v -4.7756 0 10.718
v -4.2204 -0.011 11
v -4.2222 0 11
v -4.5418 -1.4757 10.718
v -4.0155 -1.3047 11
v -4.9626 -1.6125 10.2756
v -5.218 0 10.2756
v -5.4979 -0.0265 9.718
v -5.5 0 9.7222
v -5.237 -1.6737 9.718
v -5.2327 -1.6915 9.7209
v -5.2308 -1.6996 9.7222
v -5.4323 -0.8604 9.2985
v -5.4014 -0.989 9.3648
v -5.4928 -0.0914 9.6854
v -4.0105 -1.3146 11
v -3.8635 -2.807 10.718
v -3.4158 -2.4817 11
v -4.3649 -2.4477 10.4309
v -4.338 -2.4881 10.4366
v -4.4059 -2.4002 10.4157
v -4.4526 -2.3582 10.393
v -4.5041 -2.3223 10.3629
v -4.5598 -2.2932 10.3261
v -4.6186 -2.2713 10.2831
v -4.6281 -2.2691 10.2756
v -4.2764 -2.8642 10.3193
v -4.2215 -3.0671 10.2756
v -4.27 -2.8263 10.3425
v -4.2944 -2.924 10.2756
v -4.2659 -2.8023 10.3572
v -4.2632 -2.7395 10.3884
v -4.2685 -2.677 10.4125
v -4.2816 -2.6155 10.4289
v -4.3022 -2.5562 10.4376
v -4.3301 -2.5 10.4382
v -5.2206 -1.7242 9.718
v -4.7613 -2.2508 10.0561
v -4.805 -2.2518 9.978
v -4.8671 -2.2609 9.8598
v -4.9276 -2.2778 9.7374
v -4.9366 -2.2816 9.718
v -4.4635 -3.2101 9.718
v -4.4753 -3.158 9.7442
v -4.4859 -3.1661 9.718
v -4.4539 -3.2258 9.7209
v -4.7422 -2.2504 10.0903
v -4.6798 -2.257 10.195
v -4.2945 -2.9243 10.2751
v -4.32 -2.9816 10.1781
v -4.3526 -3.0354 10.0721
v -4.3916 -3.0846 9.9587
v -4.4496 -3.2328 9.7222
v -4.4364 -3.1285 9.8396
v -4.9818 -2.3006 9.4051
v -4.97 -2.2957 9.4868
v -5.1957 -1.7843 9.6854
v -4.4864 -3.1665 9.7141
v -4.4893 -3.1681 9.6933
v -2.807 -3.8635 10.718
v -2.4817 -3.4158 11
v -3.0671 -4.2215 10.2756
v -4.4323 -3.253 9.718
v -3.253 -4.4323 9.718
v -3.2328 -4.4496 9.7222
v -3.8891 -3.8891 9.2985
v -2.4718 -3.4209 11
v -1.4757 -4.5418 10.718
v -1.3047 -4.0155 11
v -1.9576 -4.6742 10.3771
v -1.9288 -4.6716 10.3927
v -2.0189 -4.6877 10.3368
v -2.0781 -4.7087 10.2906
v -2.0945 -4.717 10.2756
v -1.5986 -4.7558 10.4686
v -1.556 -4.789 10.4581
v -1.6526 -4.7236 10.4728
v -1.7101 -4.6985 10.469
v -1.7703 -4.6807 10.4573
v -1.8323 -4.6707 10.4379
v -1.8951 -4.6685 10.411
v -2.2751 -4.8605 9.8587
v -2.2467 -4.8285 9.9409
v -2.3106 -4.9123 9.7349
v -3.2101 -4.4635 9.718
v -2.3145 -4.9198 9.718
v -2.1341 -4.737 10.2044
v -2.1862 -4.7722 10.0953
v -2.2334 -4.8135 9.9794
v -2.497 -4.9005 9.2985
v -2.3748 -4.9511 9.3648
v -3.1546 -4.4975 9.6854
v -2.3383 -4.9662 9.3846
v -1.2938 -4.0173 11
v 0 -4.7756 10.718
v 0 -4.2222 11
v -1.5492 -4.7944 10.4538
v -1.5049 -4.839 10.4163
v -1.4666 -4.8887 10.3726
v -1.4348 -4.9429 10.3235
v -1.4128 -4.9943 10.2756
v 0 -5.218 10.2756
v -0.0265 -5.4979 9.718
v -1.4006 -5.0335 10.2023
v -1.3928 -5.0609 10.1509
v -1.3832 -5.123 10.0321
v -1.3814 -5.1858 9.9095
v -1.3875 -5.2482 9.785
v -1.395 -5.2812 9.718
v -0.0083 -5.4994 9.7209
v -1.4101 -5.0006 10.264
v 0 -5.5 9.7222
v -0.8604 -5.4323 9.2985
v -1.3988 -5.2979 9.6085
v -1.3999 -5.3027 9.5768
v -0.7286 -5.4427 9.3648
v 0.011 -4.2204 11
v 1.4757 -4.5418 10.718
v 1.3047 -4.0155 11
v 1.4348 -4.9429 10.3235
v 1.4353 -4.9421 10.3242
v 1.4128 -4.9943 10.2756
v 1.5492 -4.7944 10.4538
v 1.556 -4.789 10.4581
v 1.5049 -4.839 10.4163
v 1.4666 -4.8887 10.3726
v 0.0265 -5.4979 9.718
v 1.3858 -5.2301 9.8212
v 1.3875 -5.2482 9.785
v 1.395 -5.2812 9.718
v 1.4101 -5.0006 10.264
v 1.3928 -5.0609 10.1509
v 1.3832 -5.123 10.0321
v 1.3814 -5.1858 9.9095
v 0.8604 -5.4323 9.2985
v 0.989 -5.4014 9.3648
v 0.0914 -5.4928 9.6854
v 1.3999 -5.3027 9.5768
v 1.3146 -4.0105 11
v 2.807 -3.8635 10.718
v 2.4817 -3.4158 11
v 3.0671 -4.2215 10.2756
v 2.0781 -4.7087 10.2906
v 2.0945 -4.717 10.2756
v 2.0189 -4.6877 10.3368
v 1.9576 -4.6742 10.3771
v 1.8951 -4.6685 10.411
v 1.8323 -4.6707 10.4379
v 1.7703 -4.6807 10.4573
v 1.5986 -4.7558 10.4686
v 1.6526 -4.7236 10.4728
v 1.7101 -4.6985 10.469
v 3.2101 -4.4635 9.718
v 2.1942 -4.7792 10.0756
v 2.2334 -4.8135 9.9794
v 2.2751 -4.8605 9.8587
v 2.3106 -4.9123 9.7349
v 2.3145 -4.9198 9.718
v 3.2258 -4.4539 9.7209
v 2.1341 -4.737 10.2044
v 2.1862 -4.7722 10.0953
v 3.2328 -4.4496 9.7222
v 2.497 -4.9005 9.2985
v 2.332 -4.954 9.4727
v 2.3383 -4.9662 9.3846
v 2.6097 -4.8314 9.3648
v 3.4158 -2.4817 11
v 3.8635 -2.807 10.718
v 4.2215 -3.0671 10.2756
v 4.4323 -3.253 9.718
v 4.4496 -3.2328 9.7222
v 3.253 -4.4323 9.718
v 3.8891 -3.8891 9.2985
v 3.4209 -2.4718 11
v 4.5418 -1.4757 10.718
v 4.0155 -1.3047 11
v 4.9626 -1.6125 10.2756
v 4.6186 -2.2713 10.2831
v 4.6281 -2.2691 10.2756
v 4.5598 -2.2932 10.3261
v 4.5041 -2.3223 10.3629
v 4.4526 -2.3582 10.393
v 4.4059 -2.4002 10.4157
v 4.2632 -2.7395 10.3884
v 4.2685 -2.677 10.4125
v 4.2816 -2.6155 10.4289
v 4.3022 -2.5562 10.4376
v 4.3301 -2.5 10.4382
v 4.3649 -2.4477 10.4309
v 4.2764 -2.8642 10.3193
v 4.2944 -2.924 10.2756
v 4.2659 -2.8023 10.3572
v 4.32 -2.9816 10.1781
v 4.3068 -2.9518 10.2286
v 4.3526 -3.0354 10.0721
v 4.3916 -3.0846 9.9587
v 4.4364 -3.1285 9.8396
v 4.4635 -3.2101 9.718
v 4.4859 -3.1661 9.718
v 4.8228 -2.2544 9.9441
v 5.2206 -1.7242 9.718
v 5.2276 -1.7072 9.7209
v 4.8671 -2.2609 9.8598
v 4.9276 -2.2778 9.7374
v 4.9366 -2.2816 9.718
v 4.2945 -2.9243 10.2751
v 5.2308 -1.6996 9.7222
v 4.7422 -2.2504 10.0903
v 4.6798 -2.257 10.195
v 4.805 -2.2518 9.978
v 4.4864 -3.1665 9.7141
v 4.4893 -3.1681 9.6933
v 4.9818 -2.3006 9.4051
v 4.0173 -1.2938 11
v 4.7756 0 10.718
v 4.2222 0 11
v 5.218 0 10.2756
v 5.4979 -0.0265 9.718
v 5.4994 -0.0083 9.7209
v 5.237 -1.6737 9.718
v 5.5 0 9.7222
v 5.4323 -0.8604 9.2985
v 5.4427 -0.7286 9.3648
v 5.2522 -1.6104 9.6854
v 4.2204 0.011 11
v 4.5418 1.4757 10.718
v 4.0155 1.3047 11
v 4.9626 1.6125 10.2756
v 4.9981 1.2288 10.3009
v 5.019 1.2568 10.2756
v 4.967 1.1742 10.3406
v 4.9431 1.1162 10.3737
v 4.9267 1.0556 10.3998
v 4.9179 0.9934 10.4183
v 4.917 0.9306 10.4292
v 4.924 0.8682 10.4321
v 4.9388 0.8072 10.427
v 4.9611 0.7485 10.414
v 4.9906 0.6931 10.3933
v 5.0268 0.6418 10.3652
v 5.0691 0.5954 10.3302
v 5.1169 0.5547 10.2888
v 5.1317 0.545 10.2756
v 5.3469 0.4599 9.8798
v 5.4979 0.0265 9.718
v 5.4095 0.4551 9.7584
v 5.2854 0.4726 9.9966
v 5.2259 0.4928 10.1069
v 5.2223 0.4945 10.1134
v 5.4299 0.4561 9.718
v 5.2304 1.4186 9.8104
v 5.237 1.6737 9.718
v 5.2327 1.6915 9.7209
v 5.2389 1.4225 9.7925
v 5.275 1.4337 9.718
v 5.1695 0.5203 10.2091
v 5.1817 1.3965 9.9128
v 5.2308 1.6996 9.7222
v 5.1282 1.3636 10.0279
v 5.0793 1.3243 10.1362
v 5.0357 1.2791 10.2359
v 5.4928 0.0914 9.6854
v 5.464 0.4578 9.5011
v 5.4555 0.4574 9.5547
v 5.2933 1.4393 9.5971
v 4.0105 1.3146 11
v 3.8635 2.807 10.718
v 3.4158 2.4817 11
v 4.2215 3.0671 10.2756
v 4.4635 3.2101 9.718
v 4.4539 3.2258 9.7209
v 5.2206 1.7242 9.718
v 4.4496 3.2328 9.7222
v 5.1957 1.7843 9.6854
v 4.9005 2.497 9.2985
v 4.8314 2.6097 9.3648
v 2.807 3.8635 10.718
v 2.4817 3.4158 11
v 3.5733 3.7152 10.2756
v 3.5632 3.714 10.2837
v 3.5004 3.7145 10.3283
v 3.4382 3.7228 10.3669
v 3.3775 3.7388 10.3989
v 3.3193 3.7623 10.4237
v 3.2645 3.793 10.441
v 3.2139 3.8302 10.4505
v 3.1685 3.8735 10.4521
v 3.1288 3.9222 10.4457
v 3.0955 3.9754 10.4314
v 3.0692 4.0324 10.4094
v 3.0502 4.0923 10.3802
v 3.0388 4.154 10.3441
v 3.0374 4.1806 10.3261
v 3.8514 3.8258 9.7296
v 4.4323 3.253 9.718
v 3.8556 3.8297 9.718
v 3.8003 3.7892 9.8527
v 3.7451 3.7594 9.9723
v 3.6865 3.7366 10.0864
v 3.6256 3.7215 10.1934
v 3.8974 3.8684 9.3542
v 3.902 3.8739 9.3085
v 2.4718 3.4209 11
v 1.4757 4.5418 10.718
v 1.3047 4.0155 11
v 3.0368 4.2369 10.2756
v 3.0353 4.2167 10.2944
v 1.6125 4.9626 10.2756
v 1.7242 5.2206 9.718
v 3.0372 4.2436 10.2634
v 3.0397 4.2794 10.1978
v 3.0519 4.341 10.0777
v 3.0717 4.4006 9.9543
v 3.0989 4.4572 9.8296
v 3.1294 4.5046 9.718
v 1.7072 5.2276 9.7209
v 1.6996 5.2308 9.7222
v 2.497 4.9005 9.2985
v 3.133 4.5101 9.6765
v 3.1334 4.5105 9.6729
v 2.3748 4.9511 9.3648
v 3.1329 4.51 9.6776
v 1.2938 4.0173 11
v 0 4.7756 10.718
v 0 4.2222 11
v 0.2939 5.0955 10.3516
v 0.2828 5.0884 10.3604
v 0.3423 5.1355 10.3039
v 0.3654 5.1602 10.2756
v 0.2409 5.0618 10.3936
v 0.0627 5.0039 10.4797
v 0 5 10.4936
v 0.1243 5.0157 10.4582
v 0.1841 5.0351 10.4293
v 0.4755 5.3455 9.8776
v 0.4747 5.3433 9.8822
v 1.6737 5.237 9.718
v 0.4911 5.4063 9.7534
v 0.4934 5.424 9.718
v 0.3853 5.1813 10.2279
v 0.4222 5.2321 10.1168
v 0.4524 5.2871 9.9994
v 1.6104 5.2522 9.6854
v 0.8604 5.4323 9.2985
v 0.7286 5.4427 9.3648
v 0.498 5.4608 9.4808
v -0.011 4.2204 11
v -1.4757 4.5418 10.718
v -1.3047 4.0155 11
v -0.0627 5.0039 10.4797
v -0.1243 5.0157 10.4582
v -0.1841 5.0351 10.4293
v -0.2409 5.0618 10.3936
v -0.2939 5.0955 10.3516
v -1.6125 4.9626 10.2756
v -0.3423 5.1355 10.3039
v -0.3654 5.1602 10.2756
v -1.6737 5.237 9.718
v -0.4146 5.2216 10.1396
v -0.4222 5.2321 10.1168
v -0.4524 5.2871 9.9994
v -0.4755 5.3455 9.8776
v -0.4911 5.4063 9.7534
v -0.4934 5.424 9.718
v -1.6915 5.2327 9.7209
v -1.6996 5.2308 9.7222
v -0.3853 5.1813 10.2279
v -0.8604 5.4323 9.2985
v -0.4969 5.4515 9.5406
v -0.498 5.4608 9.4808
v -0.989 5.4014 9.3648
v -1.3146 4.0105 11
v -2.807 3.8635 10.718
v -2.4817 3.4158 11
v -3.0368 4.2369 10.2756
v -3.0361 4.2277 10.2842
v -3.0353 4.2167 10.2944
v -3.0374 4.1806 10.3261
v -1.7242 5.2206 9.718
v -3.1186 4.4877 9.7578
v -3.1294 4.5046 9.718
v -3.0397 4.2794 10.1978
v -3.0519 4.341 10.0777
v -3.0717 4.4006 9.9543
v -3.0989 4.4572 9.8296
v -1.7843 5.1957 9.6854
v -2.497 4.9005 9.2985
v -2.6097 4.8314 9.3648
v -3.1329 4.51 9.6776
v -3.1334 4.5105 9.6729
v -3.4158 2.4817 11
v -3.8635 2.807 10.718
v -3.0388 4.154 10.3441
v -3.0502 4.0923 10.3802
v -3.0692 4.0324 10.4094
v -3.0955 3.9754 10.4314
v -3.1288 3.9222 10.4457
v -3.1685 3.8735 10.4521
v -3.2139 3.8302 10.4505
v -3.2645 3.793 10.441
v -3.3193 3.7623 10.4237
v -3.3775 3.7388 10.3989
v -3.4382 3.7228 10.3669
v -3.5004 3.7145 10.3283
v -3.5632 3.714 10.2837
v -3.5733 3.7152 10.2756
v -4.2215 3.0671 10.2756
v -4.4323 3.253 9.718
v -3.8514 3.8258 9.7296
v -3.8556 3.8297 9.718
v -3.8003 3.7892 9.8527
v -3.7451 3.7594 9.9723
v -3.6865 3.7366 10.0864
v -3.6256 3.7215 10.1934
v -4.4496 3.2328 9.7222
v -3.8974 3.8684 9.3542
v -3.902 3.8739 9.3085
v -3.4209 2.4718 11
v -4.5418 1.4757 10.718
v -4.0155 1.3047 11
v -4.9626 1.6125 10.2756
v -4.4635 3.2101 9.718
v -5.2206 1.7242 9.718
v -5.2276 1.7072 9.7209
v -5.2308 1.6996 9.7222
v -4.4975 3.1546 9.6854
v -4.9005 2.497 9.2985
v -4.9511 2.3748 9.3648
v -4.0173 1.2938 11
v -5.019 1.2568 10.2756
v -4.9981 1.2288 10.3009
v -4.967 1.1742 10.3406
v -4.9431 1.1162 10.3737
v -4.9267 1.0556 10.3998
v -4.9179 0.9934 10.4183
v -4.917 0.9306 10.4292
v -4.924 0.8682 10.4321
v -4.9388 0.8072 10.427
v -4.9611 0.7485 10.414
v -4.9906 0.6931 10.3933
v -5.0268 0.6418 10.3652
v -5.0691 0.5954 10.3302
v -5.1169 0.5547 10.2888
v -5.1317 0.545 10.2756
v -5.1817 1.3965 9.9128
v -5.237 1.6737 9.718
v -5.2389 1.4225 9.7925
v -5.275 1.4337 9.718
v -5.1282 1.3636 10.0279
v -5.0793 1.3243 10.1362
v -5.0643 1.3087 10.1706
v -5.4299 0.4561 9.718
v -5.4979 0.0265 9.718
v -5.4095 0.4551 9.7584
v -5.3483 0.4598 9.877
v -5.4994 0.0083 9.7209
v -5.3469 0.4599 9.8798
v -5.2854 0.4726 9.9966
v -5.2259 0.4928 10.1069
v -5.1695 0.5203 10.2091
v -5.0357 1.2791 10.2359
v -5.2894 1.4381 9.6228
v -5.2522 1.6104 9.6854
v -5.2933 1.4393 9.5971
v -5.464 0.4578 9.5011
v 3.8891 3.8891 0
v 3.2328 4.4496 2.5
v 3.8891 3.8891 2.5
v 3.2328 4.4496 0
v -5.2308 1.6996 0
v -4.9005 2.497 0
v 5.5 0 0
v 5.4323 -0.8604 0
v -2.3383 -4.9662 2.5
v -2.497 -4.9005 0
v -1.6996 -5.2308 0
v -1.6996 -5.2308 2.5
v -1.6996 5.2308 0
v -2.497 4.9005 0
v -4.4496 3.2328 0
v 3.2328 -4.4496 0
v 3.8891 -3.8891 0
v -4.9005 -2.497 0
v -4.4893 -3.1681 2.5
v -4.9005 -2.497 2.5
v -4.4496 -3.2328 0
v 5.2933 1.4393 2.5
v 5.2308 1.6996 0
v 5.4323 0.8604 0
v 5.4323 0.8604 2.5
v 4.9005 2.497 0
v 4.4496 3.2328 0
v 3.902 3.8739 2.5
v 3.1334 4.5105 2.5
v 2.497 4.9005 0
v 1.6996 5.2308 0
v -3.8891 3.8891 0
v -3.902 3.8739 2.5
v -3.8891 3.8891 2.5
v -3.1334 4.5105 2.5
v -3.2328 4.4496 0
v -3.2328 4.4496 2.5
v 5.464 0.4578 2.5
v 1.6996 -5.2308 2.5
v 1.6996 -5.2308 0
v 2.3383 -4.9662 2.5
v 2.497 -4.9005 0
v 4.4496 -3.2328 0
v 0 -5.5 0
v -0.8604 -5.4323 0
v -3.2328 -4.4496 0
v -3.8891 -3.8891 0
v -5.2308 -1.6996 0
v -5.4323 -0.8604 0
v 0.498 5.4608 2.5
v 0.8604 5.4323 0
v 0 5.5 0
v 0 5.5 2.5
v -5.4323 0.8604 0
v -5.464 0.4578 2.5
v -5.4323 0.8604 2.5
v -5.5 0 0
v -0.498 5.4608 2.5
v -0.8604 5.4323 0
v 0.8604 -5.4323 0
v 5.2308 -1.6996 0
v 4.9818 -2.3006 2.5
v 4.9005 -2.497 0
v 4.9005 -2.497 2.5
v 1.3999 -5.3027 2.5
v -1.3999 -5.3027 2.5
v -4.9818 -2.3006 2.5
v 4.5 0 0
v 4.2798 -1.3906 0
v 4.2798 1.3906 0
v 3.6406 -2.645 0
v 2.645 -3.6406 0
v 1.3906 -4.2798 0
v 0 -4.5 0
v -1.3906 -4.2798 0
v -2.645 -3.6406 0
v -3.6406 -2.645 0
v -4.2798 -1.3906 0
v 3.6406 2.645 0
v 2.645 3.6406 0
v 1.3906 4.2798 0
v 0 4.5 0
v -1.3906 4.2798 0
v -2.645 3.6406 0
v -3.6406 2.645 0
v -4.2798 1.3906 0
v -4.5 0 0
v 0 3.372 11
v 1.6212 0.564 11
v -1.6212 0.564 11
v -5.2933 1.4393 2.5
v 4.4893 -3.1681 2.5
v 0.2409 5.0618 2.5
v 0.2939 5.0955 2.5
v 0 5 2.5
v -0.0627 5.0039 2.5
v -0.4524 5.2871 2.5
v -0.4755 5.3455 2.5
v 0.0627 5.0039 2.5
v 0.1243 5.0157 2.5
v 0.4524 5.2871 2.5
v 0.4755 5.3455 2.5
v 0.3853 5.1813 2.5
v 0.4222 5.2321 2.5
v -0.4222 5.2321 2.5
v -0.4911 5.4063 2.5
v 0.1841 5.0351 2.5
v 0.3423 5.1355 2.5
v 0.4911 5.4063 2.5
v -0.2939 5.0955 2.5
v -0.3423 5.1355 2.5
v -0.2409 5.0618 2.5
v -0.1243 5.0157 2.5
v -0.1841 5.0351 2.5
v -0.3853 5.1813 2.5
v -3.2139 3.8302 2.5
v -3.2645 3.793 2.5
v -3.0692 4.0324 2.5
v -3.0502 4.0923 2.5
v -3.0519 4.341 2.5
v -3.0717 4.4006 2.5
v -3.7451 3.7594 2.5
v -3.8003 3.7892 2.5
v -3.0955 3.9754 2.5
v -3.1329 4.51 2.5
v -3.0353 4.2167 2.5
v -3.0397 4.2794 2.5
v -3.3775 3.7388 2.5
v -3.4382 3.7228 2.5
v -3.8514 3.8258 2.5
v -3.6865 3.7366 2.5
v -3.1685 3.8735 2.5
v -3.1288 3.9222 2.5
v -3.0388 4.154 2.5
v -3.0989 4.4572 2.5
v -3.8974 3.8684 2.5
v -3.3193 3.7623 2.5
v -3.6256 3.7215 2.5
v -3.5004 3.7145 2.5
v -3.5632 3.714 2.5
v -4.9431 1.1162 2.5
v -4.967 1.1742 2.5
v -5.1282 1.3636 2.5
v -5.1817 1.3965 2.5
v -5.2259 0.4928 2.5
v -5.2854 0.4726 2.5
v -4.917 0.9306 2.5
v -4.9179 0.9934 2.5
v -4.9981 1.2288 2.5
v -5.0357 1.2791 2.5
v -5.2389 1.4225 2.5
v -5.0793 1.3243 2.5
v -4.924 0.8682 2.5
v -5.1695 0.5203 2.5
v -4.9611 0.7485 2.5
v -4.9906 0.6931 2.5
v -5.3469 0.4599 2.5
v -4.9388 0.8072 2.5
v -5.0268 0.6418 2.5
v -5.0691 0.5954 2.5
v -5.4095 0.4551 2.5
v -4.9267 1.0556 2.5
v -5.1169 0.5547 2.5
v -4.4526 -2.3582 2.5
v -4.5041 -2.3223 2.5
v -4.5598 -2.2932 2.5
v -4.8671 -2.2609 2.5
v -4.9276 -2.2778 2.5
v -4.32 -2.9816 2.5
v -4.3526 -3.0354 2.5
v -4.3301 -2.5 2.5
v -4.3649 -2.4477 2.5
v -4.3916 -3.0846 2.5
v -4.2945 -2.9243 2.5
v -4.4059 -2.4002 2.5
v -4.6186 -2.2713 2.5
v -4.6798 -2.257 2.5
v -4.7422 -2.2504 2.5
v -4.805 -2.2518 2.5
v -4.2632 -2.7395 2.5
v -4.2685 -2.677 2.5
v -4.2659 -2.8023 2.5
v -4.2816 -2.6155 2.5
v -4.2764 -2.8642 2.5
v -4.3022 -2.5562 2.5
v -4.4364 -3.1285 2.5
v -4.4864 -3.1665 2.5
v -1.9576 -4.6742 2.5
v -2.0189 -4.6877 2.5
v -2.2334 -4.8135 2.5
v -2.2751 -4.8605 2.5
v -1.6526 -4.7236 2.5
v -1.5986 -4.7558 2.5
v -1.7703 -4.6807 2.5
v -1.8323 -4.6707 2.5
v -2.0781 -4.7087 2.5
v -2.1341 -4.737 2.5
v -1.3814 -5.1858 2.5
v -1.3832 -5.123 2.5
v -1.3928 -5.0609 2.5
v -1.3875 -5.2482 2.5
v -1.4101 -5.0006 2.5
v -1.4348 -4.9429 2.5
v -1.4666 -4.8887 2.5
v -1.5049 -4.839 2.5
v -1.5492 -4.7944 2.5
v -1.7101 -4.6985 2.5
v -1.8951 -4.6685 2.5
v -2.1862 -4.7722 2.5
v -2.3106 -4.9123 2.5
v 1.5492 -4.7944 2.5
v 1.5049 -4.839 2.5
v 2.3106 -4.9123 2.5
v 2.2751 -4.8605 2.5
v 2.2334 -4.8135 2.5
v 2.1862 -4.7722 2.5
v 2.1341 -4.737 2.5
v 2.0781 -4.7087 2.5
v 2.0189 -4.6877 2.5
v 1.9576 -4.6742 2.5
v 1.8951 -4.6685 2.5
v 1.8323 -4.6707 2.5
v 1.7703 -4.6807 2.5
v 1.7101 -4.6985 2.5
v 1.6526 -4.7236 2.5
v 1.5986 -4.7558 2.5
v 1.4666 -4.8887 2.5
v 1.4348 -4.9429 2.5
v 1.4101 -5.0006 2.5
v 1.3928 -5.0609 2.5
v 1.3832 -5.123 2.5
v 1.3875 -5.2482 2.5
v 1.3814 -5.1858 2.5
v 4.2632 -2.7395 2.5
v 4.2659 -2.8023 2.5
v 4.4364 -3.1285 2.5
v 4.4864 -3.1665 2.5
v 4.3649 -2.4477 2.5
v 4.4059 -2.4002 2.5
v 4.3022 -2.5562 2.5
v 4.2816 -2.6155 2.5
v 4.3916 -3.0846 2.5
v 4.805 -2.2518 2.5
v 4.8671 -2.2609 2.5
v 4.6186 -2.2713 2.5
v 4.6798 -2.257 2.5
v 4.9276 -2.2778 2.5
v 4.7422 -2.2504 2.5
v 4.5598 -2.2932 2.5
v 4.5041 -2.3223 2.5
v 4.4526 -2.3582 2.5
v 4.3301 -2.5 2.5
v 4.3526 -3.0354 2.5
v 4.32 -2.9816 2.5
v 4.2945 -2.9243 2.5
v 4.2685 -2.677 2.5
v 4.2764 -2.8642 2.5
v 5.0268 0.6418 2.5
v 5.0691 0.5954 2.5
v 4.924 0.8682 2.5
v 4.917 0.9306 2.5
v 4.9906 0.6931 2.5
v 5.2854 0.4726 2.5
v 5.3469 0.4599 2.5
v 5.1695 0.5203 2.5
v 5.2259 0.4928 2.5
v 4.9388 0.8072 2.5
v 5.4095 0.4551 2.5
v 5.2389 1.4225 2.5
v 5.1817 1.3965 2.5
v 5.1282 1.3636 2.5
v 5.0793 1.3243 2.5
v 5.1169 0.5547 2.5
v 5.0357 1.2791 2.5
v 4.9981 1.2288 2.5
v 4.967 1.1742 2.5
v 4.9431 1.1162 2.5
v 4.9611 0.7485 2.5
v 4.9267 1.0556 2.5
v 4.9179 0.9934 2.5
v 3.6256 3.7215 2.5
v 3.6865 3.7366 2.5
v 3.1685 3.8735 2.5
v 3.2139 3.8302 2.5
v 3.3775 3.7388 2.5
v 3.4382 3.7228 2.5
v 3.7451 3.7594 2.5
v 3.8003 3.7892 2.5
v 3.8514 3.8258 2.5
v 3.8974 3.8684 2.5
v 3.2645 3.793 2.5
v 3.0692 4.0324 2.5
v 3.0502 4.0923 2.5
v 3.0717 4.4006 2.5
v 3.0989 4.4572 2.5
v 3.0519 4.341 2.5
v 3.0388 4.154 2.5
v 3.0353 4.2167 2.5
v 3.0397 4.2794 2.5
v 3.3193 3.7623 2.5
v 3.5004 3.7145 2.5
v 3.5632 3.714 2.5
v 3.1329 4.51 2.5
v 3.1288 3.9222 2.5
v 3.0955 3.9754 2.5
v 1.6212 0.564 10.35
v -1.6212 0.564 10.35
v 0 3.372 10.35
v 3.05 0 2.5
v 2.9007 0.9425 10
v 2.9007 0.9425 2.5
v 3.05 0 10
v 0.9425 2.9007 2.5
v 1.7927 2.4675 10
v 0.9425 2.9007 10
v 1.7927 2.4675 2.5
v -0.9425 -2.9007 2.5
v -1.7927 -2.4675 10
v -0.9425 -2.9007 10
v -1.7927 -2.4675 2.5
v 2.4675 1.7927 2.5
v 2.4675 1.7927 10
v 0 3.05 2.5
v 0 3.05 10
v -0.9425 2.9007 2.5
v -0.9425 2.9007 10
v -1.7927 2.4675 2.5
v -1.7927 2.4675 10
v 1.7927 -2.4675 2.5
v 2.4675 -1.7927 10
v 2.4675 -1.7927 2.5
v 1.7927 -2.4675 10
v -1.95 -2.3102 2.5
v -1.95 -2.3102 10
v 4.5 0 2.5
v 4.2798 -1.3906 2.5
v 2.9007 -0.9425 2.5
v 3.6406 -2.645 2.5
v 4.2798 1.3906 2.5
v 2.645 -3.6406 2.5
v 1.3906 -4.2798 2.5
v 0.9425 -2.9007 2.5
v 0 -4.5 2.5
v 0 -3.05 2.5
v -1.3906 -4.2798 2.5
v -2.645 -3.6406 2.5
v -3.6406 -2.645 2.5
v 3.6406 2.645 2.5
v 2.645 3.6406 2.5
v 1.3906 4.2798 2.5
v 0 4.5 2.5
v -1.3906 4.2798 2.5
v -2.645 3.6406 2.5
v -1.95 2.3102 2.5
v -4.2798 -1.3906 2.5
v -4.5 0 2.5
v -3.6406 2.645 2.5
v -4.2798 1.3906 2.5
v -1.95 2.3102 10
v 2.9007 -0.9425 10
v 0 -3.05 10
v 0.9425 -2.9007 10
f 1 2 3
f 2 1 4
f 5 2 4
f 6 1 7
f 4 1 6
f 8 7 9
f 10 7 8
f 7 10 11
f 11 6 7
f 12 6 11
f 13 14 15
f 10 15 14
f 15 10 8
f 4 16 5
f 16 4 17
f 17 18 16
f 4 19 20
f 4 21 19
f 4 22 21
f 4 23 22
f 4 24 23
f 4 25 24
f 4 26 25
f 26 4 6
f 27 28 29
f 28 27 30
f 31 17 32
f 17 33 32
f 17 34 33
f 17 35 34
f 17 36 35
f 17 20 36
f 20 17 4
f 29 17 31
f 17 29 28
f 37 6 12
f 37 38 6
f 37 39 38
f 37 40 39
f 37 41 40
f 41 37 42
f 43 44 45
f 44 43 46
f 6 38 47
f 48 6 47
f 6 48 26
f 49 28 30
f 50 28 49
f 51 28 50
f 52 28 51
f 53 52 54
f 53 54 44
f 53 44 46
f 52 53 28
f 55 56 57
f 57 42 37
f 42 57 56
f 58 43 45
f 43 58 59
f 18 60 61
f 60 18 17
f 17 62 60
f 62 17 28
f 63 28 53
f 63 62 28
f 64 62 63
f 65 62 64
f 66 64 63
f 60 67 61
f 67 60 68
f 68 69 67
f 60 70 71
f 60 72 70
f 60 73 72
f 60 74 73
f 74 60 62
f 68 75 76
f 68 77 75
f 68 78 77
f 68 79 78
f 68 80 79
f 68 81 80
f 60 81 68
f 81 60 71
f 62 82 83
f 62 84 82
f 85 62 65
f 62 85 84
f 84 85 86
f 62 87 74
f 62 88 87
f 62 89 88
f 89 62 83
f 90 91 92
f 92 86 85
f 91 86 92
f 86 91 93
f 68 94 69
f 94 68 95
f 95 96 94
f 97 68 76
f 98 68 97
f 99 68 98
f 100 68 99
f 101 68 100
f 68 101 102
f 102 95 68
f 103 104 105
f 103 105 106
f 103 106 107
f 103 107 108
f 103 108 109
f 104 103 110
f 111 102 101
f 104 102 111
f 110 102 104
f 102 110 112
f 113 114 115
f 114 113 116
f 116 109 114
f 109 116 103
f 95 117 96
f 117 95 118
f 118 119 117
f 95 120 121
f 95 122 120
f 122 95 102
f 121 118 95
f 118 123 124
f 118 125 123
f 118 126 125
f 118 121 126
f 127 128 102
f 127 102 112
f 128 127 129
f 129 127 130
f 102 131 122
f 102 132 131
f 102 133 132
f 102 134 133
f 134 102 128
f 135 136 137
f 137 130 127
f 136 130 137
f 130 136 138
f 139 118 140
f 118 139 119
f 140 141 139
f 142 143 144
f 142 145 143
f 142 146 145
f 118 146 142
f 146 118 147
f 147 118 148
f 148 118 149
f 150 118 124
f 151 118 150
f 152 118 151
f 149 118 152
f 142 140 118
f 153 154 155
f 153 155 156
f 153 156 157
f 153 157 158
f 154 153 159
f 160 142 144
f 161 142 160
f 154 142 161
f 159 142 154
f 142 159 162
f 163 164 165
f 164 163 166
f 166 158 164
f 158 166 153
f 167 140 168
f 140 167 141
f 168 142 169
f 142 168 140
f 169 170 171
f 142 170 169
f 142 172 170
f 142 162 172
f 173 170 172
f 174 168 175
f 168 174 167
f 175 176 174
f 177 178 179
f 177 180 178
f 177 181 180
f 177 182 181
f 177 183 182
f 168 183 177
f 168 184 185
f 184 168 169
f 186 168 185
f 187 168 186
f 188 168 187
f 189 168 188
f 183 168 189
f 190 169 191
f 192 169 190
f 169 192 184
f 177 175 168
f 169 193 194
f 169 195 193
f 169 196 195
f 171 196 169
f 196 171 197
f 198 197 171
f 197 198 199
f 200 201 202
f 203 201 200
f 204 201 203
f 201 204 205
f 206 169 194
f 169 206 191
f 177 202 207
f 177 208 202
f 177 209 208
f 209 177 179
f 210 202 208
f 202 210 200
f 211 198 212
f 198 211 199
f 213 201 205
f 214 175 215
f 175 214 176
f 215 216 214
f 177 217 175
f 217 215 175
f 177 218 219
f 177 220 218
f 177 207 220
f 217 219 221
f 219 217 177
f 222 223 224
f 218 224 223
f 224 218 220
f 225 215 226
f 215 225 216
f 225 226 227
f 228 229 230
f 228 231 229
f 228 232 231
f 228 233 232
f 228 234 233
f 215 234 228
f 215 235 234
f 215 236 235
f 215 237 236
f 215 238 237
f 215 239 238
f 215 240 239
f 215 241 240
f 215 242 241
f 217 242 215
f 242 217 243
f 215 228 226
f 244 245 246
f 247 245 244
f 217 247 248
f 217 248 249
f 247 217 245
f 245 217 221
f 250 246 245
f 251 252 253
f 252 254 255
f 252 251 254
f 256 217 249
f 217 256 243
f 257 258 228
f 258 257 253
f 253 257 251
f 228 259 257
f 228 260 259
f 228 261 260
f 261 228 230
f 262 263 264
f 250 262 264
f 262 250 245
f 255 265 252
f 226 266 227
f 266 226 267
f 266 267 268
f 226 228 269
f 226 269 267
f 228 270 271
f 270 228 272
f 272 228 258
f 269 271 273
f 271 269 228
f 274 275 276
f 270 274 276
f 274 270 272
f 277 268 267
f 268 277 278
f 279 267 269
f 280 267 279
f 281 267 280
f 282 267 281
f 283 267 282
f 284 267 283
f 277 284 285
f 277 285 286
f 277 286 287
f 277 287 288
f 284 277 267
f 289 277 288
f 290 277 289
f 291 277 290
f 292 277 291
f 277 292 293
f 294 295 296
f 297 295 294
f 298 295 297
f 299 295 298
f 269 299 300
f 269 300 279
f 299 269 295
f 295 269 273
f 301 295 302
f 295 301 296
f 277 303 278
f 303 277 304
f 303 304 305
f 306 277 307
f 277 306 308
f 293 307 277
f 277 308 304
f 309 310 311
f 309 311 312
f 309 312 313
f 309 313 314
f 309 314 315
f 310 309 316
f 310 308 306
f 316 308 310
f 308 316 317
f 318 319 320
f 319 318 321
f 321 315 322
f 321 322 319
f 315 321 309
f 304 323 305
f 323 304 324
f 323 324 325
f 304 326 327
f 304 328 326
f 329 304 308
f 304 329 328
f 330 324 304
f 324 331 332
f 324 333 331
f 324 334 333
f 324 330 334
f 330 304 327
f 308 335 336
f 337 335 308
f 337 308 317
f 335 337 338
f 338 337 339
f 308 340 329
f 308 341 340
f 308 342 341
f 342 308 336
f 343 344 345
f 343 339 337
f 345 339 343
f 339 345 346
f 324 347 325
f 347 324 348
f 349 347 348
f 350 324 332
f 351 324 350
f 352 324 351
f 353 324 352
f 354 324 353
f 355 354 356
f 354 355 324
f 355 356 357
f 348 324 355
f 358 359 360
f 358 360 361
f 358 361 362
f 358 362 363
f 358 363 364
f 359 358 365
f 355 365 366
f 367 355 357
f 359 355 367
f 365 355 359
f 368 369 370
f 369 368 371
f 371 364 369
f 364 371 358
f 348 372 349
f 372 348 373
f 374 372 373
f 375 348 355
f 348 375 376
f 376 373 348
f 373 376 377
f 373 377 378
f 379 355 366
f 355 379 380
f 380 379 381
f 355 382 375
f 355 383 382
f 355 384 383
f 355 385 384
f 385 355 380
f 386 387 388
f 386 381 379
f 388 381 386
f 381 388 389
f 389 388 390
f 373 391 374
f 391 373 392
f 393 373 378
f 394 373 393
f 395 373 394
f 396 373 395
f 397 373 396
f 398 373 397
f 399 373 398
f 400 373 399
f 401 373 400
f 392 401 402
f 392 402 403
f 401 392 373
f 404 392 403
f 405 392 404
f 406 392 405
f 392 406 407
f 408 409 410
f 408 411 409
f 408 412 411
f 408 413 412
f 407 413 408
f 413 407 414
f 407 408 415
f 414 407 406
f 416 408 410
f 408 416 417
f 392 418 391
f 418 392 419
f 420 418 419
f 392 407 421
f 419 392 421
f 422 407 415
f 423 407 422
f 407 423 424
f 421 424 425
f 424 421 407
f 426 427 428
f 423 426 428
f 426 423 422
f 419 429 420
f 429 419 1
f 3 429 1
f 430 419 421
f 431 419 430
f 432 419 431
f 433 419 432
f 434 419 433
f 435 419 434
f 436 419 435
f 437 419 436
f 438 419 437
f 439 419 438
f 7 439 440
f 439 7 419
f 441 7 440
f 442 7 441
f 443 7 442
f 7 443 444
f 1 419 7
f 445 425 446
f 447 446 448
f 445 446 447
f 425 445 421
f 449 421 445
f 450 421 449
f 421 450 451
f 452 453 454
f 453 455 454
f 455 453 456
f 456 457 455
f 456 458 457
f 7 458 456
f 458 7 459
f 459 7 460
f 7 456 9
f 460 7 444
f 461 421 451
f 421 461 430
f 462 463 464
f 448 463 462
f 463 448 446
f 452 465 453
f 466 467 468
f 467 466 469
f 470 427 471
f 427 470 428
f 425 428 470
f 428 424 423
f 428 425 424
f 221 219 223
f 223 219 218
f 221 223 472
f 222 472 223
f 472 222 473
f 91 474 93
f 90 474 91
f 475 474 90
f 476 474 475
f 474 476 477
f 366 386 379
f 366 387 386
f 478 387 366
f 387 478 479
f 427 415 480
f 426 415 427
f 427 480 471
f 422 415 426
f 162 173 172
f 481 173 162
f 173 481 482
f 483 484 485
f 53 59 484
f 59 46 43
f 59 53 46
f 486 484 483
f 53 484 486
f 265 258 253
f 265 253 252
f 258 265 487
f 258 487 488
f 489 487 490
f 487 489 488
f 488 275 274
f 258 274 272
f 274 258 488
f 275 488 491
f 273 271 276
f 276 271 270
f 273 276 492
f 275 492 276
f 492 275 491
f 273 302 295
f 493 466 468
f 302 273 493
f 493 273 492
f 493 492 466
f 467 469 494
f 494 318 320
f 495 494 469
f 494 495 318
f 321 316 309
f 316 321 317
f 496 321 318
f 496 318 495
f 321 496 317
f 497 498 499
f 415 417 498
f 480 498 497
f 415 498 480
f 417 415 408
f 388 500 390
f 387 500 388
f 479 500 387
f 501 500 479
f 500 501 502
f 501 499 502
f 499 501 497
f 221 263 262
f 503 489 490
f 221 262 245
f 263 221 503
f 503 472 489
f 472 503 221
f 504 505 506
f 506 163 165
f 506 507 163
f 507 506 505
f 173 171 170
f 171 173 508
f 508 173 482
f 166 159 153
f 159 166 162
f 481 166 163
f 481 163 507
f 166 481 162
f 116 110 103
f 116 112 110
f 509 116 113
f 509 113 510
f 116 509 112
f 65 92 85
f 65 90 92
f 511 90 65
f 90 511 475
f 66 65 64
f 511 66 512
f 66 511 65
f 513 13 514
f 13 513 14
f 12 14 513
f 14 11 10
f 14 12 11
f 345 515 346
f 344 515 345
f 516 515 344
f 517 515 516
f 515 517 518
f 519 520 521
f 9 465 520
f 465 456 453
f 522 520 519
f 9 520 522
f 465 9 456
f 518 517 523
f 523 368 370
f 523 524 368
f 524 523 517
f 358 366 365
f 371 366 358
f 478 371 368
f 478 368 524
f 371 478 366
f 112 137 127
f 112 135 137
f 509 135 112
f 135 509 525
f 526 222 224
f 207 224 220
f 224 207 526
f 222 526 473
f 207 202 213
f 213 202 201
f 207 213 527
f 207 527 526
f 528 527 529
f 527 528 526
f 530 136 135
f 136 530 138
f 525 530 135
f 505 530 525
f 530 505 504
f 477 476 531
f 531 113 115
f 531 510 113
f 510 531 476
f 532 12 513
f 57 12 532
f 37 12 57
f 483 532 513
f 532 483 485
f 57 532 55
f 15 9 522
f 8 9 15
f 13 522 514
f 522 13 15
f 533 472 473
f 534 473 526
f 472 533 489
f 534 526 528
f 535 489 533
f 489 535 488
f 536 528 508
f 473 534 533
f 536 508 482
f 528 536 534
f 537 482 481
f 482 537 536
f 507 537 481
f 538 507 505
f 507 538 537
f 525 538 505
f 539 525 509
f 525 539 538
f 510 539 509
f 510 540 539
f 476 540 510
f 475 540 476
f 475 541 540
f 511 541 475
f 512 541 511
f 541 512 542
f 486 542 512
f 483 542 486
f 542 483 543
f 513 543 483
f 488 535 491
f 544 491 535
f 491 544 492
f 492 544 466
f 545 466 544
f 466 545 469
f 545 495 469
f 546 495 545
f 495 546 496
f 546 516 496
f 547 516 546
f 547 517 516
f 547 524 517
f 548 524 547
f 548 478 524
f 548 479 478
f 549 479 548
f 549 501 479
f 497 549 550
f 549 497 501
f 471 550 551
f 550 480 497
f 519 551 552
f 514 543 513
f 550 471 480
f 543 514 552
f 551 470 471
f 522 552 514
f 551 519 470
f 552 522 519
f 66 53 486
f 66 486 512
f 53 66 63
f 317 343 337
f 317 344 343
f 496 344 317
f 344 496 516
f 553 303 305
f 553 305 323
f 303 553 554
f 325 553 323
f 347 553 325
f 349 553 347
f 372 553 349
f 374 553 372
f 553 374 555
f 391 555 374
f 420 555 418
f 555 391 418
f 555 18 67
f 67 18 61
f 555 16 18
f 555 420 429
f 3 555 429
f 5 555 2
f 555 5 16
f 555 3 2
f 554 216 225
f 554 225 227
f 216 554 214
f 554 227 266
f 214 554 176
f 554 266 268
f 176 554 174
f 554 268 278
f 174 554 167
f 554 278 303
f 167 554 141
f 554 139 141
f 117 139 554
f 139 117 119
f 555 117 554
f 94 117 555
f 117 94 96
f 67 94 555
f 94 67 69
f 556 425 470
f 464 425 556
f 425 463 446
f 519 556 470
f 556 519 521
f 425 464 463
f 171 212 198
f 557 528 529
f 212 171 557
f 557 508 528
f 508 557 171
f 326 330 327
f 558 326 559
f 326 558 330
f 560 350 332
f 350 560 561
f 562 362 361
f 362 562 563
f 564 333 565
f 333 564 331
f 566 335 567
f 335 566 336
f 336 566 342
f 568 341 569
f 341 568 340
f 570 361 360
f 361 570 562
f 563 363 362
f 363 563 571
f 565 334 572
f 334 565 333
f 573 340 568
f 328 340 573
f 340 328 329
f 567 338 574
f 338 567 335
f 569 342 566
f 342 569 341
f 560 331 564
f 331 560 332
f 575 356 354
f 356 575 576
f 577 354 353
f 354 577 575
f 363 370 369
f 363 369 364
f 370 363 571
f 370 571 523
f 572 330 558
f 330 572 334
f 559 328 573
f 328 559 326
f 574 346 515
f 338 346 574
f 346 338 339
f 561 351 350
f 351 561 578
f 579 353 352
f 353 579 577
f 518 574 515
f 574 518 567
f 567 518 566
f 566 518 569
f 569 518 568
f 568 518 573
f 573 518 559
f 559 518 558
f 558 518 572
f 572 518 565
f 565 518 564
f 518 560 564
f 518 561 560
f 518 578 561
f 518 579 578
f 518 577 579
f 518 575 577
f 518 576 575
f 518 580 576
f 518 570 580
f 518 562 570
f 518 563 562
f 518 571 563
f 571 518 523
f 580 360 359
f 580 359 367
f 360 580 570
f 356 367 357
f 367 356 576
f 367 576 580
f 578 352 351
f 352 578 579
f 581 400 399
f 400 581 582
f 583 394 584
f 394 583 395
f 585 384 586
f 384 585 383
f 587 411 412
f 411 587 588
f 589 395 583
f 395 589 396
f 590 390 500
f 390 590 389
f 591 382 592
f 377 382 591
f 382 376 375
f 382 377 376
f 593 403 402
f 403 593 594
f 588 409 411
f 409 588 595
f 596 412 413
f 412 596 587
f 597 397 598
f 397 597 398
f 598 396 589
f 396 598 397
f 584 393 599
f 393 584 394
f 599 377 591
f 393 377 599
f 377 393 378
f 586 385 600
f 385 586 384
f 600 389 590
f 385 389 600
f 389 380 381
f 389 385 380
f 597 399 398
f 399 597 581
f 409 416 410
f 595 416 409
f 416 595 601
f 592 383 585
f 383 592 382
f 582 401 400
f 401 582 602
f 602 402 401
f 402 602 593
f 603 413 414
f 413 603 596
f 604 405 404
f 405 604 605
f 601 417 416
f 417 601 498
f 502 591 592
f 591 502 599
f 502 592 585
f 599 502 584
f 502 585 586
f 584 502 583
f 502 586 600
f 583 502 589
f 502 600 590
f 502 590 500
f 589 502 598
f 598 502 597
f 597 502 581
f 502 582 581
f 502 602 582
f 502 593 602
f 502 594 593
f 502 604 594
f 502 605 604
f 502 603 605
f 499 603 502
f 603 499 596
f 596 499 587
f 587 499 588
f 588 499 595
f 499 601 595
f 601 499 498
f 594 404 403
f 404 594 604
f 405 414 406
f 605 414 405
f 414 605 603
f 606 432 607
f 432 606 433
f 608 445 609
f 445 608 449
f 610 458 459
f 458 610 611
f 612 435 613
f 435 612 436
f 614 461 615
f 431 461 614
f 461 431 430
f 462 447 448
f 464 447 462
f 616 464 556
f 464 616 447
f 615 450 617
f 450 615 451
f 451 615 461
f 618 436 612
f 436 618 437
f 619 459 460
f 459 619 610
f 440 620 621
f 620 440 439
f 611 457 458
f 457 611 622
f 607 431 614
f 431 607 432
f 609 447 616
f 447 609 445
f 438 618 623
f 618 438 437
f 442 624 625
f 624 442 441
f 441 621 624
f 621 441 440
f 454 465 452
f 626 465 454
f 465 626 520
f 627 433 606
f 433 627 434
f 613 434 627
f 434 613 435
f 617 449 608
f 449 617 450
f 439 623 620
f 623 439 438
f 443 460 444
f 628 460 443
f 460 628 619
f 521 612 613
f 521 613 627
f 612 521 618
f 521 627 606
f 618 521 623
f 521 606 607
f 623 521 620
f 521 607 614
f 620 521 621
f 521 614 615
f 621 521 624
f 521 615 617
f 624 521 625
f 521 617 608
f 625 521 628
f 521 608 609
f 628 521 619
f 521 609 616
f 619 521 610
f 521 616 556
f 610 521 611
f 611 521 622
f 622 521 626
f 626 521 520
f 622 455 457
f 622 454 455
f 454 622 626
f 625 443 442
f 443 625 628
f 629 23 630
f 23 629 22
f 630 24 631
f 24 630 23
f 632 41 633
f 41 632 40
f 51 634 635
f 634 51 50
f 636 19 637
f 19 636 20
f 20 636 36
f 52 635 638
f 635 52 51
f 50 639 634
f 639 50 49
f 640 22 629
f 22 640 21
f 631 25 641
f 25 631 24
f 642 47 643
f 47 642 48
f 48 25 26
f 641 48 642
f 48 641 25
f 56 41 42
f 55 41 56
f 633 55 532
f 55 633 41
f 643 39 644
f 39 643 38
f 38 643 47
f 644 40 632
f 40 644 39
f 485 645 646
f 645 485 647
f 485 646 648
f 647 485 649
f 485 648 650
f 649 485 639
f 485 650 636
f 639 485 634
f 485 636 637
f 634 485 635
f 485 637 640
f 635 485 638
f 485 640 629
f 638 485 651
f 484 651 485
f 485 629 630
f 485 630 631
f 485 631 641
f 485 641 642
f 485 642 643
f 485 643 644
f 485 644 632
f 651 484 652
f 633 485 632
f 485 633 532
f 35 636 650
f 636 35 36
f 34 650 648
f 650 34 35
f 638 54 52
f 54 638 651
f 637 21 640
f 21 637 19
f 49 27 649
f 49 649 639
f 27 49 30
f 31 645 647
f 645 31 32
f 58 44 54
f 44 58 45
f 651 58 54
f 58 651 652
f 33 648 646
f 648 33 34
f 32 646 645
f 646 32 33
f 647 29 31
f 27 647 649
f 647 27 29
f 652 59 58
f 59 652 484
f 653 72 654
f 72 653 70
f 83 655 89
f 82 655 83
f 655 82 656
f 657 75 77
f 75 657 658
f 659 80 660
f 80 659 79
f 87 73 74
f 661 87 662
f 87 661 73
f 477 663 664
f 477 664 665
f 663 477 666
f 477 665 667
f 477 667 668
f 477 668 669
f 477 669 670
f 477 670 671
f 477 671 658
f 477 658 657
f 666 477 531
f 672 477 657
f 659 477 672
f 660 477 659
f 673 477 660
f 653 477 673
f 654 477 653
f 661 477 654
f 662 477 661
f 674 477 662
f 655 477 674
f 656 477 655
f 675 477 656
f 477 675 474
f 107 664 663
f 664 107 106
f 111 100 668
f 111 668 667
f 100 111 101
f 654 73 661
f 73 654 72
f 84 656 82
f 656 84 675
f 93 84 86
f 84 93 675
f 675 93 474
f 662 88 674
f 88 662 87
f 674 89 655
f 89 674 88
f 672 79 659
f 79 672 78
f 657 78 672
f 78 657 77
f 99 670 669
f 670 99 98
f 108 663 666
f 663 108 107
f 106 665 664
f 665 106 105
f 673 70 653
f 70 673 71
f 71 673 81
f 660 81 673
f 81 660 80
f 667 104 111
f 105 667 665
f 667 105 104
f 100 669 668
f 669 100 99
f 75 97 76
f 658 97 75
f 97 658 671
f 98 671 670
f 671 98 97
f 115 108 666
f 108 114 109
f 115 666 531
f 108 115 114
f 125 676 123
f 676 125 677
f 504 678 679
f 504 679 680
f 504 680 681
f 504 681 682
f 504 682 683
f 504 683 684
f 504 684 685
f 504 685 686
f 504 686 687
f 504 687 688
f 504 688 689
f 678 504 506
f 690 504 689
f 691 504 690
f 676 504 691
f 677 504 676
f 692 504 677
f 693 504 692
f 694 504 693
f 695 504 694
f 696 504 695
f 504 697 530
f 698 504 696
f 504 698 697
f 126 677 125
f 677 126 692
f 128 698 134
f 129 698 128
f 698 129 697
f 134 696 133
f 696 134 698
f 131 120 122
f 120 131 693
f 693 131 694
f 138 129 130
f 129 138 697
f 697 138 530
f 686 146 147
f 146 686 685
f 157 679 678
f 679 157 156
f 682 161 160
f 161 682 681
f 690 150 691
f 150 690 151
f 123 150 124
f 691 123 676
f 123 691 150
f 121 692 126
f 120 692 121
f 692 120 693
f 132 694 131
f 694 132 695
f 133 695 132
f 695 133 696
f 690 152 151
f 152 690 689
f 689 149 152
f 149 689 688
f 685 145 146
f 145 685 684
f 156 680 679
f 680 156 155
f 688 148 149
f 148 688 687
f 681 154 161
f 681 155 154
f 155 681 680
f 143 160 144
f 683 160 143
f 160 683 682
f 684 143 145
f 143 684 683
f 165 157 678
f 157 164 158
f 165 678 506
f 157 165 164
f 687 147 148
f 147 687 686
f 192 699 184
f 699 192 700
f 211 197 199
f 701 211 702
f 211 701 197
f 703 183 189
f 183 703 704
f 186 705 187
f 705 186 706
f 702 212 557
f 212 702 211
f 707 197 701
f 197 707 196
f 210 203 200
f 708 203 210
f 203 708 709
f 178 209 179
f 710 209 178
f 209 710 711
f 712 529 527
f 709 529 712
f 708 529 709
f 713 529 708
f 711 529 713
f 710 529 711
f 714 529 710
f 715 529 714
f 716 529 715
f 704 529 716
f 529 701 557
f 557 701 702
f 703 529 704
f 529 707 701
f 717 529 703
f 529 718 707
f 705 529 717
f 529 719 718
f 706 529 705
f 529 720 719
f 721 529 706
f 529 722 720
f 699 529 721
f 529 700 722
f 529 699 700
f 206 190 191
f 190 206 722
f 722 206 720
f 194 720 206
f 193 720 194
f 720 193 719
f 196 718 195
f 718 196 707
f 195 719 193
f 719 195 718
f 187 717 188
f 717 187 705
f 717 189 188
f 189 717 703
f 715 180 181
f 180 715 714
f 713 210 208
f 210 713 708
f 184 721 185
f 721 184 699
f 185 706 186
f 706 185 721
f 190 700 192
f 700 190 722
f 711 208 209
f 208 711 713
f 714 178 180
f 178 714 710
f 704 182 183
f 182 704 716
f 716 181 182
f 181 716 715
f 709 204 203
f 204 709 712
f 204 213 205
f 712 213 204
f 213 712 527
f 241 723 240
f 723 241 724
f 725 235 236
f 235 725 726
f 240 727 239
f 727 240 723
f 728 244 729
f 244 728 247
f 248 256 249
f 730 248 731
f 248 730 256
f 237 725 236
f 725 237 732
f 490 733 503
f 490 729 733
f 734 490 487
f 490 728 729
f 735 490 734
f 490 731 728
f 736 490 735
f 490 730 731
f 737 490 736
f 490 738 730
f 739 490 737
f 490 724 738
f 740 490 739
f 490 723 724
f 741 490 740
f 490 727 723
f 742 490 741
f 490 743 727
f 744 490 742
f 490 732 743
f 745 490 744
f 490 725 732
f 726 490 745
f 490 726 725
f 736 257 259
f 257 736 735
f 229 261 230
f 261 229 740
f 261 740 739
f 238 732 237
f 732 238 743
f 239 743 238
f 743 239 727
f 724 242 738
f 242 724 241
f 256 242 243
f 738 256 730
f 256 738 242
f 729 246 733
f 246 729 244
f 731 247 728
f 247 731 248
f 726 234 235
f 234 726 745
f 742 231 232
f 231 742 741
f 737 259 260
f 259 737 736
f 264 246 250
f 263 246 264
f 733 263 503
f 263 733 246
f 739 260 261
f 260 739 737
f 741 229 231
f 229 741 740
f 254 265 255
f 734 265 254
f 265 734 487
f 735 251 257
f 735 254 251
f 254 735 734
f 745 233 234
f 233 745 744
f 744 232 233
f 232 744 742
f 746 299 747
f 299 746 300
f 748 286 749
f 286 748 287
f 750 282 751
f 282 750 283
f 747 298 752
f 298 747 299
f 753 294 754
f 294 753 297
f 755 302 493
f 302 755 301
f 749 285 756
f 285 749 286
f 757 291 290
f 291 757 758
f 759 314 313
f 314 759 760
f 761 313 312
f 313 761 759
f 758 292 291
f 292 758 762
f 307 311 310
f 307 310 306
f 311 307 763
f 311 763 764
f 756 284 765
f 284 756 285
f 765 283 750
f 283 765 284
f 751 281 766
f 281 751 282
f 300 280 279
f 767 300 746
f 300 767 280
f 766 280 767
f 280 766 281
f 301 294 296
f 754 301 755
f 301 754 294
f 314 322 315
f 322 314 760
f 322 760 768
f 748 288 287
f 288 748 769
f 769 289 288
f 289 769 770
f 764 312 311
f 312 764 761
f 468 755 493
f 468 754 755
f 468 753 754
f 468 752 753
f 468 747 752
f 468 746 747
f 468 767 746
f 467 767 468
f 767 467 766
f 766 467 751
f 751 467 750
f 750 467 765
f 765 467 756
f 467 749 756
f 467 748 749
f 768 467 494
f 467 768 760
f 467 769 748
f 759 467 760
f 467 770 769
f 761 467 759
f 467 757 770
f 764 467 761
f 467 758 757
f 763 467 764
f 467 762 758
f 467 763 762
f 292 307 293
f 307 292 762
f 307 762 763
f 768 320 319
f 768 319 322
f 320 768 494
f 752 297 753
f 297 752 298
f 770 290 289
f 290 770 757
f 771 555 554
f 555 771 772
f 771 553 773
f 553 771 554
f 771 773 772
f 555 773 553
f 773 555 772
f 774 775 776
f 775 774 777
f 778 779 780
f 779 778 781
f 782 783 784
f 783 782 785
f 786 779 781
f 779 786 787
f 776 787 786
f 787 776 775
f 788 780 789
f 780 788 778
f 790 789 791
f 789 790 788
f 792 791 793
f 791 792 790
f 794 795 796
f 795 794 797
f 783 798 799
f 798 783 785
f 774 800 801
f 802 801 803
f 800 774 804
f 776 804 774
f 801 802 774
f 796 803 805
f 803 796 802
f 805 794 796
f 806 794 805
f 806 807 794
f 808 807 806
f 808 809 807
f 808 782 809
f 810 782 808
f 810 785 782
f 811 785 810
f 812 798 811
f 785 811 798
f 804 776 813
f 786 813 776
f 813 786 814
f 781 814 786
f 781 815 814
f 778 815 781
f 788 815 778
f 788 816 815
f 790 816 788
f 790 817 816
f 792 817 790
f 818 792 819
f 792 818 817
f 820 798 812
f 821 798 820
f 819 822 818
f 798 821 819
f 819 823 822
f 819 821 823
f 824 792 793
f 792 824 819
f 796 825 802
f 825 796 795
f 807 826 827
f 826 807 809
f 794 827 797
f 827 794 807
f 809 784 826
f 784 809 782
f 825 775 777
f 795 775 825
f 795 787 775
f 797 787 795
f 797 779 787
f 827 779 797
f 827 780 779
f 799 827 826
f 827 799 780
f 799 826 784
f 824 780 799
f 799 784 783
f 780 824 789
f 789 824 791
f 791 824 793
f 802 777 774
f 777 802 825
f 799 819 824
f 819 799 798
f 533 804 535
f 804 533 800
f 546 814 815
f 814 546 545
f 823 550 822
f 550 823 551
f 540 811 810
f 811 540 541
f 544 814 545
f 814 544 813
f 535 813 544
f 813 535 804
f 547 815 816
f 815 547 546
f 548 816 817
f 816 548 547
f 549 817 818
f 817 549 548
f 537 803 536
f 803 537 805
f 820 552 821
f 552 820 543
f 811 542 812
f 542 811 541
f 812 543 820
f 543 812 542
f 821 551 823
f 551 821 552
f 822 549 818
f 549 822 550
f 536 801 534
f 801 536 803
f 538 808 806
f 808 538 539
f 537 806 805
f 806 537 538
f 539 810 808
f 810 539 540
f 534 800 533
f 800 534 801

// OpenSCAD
/*

Parametric Potentiometer Knob Generator
version 1.4
2013 Steve Cooley
http://sc-fa.com
http://beatseqr.com
http://hapticsynapses.com

parametric potentiometer knob generator by steve cooley is licensed under a Creative Commons Attribution-NonCommercial-ShareAlike 3.0 Unported License. Based on a work at sc-fa.com. Permissions beyond the scope of this license may be available at http://sc-fa.com/blog/contact.

view terms of the license here:
http://creativecommons.org/licenses/by-nc-sa/3.0/


version history
---------------
1.4 2013-07-16 added an additive OR subtractive pill shaped indicator type
1.3 2013-04-01 updated for more awesome Thingiverse Customizer
1.2 2013-01-09 updated for Thingiverse Customizer
1.1 2012-04-12 fixed the arrow indicator code to be more robust and easier to adjust parameters for.
1.0 2012-03-?? initial release.


*/

/* [Physical attributes] */

bottom_spaceH=2.5;
bottom_spaceD=9;
layerH=0;

// All values are in Millimeters!  How big the top of the knob is:
01_knob_diameter_top = 11; //[10:100]
knob_radius_top = 01_knob_diameter_top / 2;

// How big the bottom of the knob is:
02_knob_diameter_bottom = 11; // [10:100]
knob_radius_bottom = 02_knob_diameter_bottom / 2;

// how tall the knob is:
03_knob_height = 11; // [5:50]
knob_height = 03_knob_height / 1;

// how smooth or geometric the knob is:
04_knob_smoothness = 40; // [3:40]
knob_smoothness = 04_knob_smoothness / 1;

// (measure the potentiometer shaft with calipers and remember to add a bit for shrinkage.)
05_shaft_diameter = 6.1; // this could be a slider if precision were available
shaft_radius = 05_shaft_diameter / 2;

// how much of the shaft the knob should allow space inside for:
06_shaft_height = 10; // [1:40]
shaft_height = 06_shaft_height / 1;

// higher is smoother
07_shaft_smoothness = 20; // [3:20]
shaft_smoothness = 07_shaft_smoothness / 1;

// some potentiometers have a flat surface on the shaft to allow for the use of a set screw.
08_shaft_hole_is_flatted = "true"; // [true,false]

// ignore if no flat is needed.
09_shaft_hole_flat_size = 5; // this could be a slider if precision were available
flat_size = 09_shaft_hole_flat_size / 1;

/* [Set screw] */

// some potentiometers need to have their knobs affixed with a set screw.
10_set_screw = "false"; //[true,false]

// in MM:
11_set_screw_diameter = 3; // [0:8]
set_screw_radius = 11_set_screw_diameter / 2;

// how deep into the knob, from the side:
12_set_screw_depth = 9; // [0:20]
set_screw_depth = 12_set_screw_depth / 1;

// from the top:
13_set_screw_height = 4; // [0:20]
set_screw_height = 13_set_screw_height / 1;

// higher is smoother:
14_quality_of_set_screw = 20; // [0:20]
quality_of_set_screw = 14_quality_of_set_screw / 1;

/* [Decorations] */

// thanks to http://www.iheartrobotics.com/ for the articles!
15_top_edge_smoothing = "true"; // [true,false]

// how big of a smoothing radius to apply
16_top_edge_smoothing_radius = 2.0; // [1:10]
smoothing_radius = 16_top_edge_smoothing_radius / 1;

// Number of facets for the rounding cylinder
17_top_edge_smoothing_smoothness = 20.0; // [1:40]
smooth = 17_top_edge_smoothing_smoothness / 1;

ct = -0.1 / 1; 							// circle translate? not sure.
circle_radius = knob_radius_top / 1;  	// just match the top edge radius
circle_height = 1 / 1; 					// actually.. I don't know what this does.
pad = 0.2 / 1;							// Padding to maintain manifold



/* [External indicator] */

// this is a corner edge of a cube sticking out of the cylinder at the bottom, you can use it instead of the arrow shaped cutout in the top if you like. Or both.
18_pointy_external_indicator = "false"; // [true,false]


// how tall should the indicator be, from the bottom:
19_pointy_external_indicator_height = 3; // [1:50]
pointy_external_indicator_height = 19_pointy_external_indicator_height / 1;

// how far out the indicator should poke out:
20_pointy_external_indicator_pokey_outey_ness = 1.0;
pointy_external_indicator_pokey_outey_ness = 20_pointy_external_indicator_pokey_outey_ness * 1;

pokey_outey_value = pointy_external_indicator_pokey_outey_ness - 1 - pad;
pokey_outey = [pokey_outey_value, pokey_outey_value,0];

// there's an arrow shaped hole you can have. There aren't a lot of controls for this.
// please feel free to improve on this script here.

/* [Pill-shaped indicator] */

// there's an arrow shape you can have in the top of the knob.
00_pill_indicator = "false"; // [true,false]

// add or subtract the pill shape?
00_pill_add_or_subtract = "add"; // [add,subtract]

// relative scale of the pill shape:
00_pill_scale = 1.0;

// height of the pill shape:
00_pill_height = 12.0;

// relative scale of length of the pill shape:
00_pill_length = 2.5;

// where to put the arrow, x:
00_pill_location_x = 0.0;

// where to put the arrow, y:
00_pill_location_y = 5.0;

// where to put the arrow, z:
00_pill_location_z = 0.0;

pill_translate = [00_pill_location_x,00_pill_location_y,00_pill_location_z];


/* [Internal Arrow indicator] */

// there's an arrow shape you can have in the top of the knob.
21_top_of_knob_arrow_indicator = "true"; // [true,false]

// scale the arrow head:
22_arrow_head_scale = 0.6;
arrow_scale_head = 22_arrow_head_scale / 1;

// scale the arrow shaft:
23_arrow_shaft_scale = 0;
arrow_scale_shaft = 23_arrow_shaft_scale / 1;

// how big the overall arrow indicator should be:
24_arrow_indicator_scale = 1.3;
arrow_indicator_scale = 24_arrow_indicator_scale / 1;

// where to put the arrow, x:
25_arrow_location_x = 0.0;

// where to put the arrow, y:
26_arrow_location_y = 1.50;

// where to put the arrow, z:
27_arrow_location_z = 12.3;

arrow_indicator_translate = [25_arrow_location_x,26_arrow_location_y,27_arrow_location_z];



/* [Sphere Indentations] */

// for spherical indentations, set the quantity, quality, size, and adjust the placement
28_indentations_sphere = "false"; // [true,false]

29_sphere_number_of_indentations = 12; // [1:50]
sphere_number_of_indentations = 29_sphere_number_of_indentations / 1;

30_sphere_quality_of_indentations = 40; // [1:100]
sphere_quality_of_indentations = 30_sphere_quality_of_indentations / 1;

31_size_of_sphere_indentations = 4; // [1:20]
size_of_sphere_indentations = 31_size_of_sphere_indentations / 1;

// the first number in this set moves the spheres in or out. smaller is closer to the middle
32_sphere_indentation_location_x = 12.0;

// the second number in this set moves the spheres left or right
33_sphere_indentation_location_y = 00.0;

// the third number in this set moves the speheres up or down
34_sphere_indentation_location_z = 15.0;

translation_of_sphere_indentations = [32_sphere_indentation_location_x,33_sphere_indentation_location_y,34_sphere_indentation_location_z];

// in case you are using an odd number of indentations, you way want to adjust the starting angle so that they align to the front or set screw locations.
35_sphere_indentation_starting_rotation = 30; // [-90:90]
sphere_starting_rotation = 35_sphere_indentation_starting_rotation / 1 + 90;

/* [Cylinder Indentations] */

// for cylinder indentations, set quantity, quality, radius, height, and placement
36_indentations_cylinder = "true"; // [true,false]

37_number_of_cylinder_indentations = 9; // [1:40]
cylinder_number_of_indentations = 37_number_of_cylinder_indentations / 1;

// higher is smoother:
38_smoothness_of_cylinder_indentations = 50; // [3:100]
cylinder_quality_of_indentations = 38_smoothness_of_cylinder_indentations / 1;

39_diameter_of_top_of_the_cylinder = 1; // [1:20]
radius_of_cylinder_indentations_top = 39_diameter_of_top_of_the_cylinder / 2;

40_diameter_of_bottom_of_the_cylinder = 1;  // [1:20]
radius_of_cylinder_indentations_bottom = 40_diameter_of_bottom_of_the_cylinder / 2;

41_height_of_cylinder_indentations = 15.0; // [0:40]
height_of_cylinder_indentations = 41_height_of_cylinder_indentations / 1;

// this moves the cylinders in or out from the center
42_position_of_cylinder_x = -0.0; //[-20:20]

// this moves the cylinders left or right
43_position_of_cylinder_y = 0.0; //[-20:20]

// this moves the cylinders up or down
44_position_of_cylinder_z = -1.0; //[-20:20]

translation_of_cylinder_indentations = [42_position_of_cylinder_x,43_position_of_cylinder_y,44_position_of_cylinder_z];

45_cylinder_starting_rotation = 0; // [-90:90]
cylinder_starting_rotation = 45_cylinder_starting_rotation / 1 - 90;


// these are some setup variables... you probably won't need to mess with them.
negative_knob_radius = knob_radius_bottom*-1;


// this is the main module. It calls the submodules.
make_the_knob();

module make_the_knob()
{
difference()
{
	union()
	{
	difference()
		{
		difference()
			{
		
			difference() 
				{
				difference() 
					{
					
					union()
						{
						
						difference()
							{
							// main cylinder
							cylinder(r1=knob_radius_bottom,r2=knob_radius_top,h=knob_height, $fn=knob_smoothness);
							
							smoothing();				
		
							}
				
						external_direction_indicator();	
						}
					
					}
					
				set_screw_hole();
				}
			
			if(00_pill_add_or_subtract == "subtract")
				{
				pill();
				}
			arrow_indicator();
			indentations();
			}
		
	}
	if(00_pill_add_or_subtract == "add")
							{
							pill();
							}
	
	}
shaft_hole();
bottom_space();    
}

}
module smoothing() {

// smoothing the top
				if(15_top_edge_smoothing == "true")
					{		
						translate([0,0,knob_height])
						rotate([180,0,0])
						difference() {
							rotate_extrude(convexity=10,  $fn = smooth)
							translate([circle_radius-ct-smoothing_radius+pad,ct-pad,0])
							square(smoothing_radius+pad,smoothing_radius+pad);
	
							rotate_extrude(convexity=10,  $fn = smooth)
							translate([circle_radius-ct-smoothing_radius,ct+smoothing_radius,0])
							circle(r=smoothing_radius,$fn=smooth);
							}	
					}
}

module external_direction_indicator() {

				if(18_pointy_external_indicator == "true")
						{
						
						
						// outer pointy indicator
						rotate([0,0,45])
						translate(pokey_outey)
						// cube size of 8 minimum to point out
						cube(size=[knob_radius_bottom,knob_radius_bottom,pointy_external_indicator_height],center=false);
						}

}

module shaft_hole() {
				// shaft hole
				difference()
					{
					
					// round shaft hole
					translate([ 0, 0, bottom_spaceH+layerH]) 
					cylinder(r=shaft_radius,h=shaft_height-bottom_spaceH, $fn=shaft_smoothness);
					
					if(08_shaft_hole_is_flatted  == "true")
						{
						// D shaft shape for shaft cutout
						rotate( [0,0,90]) 
						translate([-shaft_radius,-shaft_radius+flat_size,bottom_spaceH]) 
						cube(size=[shaft_radius*2,shaft_radius*2,shaft_height-bottom_spaceH-layerH],center=false);
                        //cube(size=[flat_size,10,13],center=false);
						}
					}
}
module bottom_space() {
    translate([ 0, 0, -1]) 
	cylinder(d=bottom_spaceD,h=bottom_spaceH+1, $fn=shaft_smoothness);				
}

module set_screw_hole() {

			if(10_set_screw == "true")
				{
				// set screw hole
				rotate ([90,0,0])
				translate([ 0, set_screw_height, 1 ])
				cylinder(r=set_screw_radius,h=set_screw_depth, $fn=quality_of_set_screw);
				}
}

module arrow_indicator() {
		if(21_top_of_knob_arrow_indicator == "true")
			{
			translate(arrow_indicator_translate)
			// begin arrow top cutout
			// translate([(knob_radius/2),knob_height,knob_height])
			rotate([90,0,45])
			scale([arrow_indicator_scale*.3,arrow_indicator_scale*.3,arrow_indicator_scale*.3])
			union()
				{			  
				rotate([90,45,0])
				scale([arrow_scale_head,arrow_scale_head,1])
				cylinder(r=8, h=10, $fn=3, center=true);
				rotate([90,45,0])
				translate([-10,0,0])
				scale([arrow_scale_shaft,arrow_scale_shaft,1])
				cube(size=[15,10,10],center=true);
				}
			}
}

module indentations() {

if(28_indentations_sphere == "true")
			{
			for (z = [0:sphere_number_of_indentations]) 
				{
				rotate([0,0,sphere_starting_rotation+((360/sphere_number_of_indentations)*z)])
				translate(translation_of_sphere_indentations)
				sphere(size_of_sphere_indentations, $fn=sphere_quality_of_indentations); 
				}
			}
if(36_indentations_cylinder == "true")
			{
			for (z = [0:cylinder_number_of_indentations]) 
				{
				rotate([0,0,cylinder_starting_rotation+((360/cylinder_number_of_indentations)*z)])
				
				translate([negative_knob_radius,0,knob_height])
				translate(translation_of_cylinder_indentations)
				cylinder(r1=radius_of_cylinder_indentations_bottom, r2=radius_of_cylinder_indentations_top, h=height_of_cylinder_indentations, center=true, $fn=cylinder_quality_of_indentations); 
				}
			}
		}

module pill()
{

if(00_pill_indicator == "true")
	{

	translate(pill_translate)

	rotate([0,0,90])
		{
		union()
			{
			cylinder(00_pill_height,00_pill_scale,00_pill_scale, $fn=40);
			translate([0,-00_pill_scale,0])
				{
					cube([(00_pill_scale*2)*00_pill_length,00_pill_scale*2,00_pill_height]);
				}
			translate([(00_pill_scale*2)*00_pill_length,0,0])
				{
					cylinder(00_pill_height,00_pill_scale,00_pill_scale, $fn=40);
				}
			}
		}
	}
}
